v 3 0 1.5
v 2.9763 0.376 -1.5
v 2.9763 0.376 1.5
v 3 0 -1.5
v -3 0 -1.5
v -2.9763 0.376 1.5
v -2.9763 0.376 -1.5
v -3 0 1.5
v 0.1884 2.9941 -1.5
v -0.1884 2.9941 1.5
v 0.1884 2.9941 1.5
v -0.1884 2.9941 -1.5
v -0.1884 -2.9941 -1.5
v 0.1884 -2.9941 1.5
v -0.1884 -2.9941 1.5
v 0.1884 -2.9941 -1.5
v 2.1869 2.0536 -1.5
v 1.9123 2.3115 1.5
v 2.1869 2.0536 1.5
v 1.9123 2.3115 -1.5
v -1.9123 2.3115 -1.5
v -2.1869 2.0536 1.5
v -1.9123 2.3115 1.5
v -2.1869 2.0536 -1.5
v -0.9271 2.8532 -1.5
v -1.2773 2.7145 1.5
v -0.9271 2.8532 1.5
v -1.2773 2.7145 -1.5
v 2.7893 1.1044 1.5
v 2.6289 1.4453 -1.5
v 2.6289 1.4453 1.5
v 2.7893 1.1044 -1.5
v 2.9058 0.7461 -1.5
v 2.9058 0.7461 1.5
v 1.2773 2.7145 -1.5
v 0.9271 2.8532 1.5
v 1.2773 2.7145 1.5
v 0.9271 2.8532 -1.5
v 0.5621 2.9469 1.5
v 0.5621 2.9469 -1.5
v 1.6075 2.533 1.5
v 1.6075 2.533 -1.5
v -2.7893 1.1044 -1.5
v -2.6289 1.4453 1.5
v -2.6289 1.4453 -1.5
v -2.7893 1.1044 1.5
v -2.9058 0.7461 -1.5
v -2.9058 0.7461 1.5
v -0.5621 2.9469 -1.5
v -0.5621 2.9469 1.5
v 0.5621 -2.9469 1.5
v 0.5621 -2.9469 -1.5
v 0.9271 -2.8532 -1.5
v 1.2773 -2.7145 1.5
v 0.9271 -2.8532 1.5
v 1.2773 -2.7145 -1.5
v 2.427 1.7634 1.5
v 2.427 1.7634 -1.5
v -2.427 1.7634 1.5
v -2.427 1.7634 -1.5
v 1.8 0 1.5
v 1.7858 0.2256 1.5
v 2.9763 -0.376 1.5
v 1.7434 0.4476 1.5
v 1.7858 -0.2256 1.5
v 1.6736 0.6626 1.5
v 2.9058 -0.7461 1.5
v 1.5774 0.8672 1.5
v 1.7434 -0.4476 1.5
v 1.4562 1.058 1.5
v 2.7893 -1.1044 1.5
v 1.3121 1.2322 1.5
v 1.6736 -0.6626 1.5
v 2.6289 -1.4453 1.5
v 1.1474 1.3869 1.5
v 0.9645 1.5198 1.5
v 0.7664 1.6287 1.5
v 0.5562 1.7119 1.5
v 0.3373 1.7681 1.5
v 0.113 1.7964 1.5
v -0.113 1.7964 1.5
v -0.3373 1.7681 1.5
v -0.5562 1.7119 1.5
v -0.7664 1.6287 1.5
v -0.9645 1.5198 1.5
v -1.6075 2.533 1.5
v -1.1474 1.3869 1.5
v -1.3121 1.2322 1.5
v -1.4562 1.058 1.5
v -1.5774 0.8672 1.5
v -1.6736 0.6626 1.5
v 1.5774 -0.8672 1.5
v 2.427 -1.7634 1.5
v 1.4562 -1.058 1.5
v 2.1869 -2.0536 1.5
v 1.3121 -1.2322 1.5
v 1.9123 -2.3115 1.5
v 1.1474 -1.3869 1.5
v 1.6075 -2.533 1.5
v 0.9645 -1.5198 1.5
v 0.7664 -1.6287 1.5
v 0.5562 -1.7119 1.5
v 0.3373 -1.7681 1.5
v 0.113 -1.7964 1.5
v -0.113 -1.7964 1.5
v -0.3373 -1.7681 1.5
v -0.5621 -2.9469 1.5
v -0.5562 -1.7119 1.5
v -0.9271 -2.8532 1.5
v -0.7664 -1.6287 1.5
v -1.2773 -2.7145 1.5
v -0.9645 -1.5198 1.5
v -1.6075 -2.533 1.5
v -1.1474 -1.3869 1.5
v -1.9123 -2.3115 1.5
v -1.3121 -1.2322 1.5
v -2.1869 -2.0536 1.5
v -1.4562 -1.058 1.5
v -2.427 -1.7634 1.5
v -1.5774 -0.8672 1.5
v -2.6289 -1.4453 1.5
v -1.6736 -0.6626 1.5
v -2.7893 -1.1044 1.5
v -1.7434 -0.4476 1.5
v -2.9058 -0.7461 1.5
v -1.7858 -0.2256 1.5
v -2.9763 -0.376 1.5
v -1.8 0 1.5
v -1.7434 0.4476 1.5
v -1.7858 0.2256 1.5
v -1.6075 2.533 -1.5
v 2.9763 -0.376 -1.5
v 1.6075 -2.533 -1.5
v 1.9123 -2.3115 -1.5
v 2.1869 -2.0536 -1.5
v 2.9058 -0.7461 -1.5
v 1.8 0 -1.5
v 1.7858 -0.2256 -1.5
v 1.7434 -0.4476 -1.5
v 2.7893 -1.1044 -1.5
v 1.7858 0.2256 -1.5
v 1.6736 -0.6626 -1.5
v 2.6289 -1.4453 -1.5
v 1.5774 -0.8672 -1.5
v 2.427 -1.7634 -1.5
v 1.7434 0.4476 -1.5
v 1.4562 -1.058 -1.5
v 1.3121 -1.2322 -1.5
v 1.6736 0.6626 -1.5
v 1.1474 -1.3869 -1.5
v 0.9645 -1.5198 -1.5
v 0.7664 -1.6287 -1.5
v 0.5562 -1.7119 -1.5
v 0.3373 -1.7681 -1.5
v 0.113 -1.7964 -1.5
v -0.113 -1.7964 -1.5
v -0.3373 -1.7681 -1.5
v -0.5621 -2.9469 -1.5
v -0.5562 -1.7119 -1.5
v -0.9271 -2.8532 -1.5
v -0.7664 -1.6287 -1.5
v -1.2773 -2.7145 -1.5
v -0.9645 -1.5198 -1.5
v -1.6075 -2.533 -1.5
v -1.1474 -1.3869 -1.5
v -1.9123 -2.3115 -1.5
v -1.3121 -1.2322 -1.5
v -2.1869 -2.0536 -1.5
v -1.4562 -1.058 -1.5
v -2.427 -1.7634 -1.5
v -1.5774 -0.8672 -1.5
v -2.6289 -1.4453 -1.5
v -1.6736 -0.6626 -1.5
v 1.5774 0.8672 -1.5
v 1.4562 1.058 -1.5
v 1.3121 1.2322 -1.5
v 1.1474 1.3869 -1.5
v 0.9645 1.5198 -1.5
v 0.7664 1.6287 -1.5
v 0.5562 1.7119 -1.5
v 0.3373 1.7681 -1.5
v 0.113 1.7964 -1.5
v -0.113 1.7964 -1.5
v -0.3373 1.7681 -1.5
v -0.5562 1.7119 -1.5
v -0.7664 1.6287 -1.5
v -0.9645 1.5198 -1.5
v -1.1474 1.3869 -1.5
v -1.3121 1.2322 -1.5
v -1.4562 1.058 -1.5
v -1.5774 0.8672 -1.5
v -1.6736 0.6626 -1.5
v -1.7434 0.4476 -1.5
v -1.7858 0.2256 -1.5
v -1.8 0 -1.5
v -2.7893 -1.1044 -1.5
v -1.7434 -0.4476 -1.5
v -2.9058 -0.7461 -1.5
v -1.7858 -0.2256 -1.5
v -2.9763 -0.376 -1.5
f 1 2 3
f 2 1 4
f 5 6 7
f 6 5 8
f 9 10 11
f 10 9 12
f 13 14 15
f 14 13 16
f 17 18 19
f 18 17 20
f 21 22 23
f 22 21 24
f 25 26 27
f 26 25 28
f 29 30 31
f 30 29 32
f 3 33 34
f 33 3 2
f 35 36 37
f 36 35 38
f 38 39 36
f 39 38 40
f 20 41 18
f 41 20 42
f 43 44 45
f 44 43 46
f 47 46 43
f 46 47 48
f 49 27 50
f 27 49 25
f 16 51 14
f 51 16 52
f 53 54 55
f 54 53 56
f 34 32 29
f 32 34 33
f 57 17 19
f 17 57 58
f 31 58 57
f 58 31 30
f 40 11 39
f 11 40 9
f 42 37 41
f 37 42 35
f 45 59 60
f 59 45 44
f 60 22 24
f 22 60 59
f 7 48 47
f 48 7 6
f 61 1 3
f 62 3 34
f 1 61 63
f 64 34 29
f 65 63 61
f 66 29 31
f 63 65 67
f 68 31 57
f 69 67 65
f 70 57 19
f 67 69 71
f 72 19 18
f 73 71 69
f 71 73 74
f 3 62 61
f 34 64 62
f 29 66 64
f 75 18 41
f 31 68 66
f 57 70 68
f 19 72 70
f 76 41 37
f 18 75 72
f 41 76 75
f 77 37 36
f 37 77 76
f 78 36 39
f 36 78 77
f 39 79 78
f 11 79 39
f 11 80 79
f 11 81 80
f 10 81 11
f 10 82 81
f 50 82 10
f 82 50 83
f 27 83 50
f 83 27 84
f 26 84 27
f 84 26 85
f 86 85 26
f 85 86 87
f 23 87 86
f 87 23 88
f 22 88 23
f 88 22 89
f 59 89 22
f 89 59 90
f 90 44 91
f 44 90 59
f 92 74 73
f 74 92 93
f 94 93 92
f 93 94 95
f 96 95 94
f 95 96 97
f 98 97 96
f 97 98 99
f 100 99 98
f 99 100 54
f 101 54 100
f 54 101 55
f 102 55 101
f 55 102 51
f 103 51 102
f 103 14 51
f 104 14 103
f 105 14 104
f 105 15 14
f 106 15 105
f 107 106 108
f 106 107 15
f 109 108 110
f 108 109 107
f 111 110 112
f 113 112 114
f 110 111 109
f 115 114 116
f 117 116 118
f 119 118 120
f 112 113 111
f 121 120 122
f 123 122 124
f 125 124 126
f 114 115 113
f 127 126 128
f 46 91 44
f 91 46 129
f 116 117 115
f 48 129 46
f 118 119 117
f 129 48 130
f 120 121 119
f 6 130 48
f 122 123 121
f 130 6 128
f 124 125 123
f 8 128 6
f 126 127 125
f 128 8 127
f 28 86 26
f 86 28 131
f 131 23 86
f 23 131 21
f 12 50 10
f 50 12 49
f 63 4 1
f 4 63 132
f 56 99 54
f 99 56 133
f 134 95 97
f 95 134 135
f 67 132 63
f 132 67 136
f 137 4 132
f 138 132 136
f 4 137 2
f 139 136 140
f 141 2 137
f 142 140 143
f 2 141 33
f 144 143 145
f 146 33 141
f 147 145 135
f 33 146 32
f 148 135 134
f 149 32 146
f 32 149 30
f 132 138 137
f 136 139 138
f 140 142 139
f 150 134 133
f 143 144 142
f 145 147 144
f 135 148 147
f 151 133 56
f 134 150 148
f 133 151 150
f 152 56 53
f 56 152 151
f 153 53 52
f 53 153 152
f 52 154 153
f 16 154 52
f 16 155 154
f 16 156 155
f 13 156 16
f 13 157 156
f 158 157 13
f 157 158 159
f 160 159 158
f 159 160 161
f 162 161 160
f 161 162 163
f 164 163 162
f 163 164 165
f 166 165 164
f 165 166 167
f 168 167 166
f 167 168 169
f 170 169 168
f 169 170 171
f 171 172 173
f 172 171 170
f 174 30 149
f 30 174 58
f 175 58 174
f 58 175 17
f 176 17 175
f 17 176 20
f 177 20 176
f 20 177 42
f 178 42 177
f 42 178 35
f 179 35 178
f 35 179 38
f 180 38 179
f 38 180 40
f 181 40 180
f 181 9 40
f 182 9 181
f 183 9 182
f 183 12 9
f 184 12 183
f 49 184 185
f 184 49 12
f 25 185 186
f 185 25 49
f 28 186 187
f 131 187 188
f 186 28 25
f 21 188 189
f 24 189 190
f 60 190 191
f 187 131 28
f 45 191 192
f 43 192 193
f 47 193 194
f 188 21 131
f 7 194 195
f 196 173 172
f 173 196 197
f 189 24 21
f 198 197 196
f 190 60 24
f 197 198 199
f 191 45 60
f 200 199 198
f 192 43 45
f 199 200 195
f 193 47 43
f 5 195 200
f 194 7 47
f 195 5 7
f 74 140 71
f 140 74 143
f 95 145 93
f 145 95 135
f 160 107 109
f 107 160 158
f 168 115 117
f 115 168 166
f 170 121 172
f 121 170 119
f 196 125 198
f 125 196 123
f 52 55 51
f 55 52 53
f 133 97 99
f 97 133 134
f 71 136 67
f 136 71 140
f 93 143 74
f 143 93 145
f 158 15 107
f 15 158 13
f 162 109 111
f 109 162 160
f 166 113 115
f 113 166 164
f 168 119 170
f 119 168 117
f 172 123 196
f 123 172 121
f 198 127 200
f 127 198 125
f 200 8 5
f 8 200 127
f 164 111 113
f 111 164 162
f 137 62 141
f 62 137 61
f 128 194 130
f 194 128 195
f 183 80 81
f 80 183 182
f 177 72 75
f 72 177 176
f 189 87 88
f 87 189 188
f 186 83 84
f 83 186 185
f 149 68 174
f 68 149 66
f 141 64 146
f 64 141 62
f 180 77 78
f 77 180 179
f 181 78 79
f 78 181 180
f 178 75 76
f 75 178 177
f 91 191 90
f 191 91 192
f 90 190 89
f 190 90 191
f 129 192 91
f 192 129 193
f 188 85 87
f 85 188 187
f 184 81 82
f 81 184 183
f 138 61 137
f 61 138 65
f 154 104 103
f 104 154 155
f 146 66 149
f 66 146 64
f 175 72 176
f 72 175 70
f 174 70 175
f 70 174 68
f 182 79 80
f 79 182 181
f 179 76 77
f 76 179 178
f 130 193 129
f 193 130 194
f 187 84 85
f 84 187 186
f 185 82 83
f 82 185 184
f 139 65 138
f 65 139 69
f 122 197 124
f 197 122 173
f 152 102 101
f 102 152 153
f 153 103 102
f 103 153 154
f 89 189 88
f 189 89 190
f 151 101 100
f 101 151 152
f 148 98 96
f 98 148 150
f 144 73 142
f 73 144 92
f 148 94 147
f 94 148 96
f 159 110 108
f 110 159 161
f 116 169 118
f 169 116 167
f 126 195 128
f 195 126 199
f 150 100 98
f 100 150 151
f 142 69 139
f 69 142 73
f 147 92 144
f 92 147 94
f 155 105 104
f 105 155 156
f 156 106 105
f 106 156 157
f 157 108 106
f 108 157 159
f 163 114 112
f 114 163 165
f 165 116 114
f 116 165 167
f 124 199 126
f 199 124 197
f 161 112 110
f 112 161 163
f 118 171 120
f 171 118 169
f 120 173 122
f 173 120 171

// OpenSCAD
$fn = 50;


difference() {
	union() {
		translate(v = [0, 0, -1.5000000000]) {
			cylinder(h = 3, r = 3.0000000000);
		}
	}
	union() {
		translate(v = [0, 0, -100.0000000000]) {
			cylinder(h = 200, r = 1.8000000000);
		}
	}
}
